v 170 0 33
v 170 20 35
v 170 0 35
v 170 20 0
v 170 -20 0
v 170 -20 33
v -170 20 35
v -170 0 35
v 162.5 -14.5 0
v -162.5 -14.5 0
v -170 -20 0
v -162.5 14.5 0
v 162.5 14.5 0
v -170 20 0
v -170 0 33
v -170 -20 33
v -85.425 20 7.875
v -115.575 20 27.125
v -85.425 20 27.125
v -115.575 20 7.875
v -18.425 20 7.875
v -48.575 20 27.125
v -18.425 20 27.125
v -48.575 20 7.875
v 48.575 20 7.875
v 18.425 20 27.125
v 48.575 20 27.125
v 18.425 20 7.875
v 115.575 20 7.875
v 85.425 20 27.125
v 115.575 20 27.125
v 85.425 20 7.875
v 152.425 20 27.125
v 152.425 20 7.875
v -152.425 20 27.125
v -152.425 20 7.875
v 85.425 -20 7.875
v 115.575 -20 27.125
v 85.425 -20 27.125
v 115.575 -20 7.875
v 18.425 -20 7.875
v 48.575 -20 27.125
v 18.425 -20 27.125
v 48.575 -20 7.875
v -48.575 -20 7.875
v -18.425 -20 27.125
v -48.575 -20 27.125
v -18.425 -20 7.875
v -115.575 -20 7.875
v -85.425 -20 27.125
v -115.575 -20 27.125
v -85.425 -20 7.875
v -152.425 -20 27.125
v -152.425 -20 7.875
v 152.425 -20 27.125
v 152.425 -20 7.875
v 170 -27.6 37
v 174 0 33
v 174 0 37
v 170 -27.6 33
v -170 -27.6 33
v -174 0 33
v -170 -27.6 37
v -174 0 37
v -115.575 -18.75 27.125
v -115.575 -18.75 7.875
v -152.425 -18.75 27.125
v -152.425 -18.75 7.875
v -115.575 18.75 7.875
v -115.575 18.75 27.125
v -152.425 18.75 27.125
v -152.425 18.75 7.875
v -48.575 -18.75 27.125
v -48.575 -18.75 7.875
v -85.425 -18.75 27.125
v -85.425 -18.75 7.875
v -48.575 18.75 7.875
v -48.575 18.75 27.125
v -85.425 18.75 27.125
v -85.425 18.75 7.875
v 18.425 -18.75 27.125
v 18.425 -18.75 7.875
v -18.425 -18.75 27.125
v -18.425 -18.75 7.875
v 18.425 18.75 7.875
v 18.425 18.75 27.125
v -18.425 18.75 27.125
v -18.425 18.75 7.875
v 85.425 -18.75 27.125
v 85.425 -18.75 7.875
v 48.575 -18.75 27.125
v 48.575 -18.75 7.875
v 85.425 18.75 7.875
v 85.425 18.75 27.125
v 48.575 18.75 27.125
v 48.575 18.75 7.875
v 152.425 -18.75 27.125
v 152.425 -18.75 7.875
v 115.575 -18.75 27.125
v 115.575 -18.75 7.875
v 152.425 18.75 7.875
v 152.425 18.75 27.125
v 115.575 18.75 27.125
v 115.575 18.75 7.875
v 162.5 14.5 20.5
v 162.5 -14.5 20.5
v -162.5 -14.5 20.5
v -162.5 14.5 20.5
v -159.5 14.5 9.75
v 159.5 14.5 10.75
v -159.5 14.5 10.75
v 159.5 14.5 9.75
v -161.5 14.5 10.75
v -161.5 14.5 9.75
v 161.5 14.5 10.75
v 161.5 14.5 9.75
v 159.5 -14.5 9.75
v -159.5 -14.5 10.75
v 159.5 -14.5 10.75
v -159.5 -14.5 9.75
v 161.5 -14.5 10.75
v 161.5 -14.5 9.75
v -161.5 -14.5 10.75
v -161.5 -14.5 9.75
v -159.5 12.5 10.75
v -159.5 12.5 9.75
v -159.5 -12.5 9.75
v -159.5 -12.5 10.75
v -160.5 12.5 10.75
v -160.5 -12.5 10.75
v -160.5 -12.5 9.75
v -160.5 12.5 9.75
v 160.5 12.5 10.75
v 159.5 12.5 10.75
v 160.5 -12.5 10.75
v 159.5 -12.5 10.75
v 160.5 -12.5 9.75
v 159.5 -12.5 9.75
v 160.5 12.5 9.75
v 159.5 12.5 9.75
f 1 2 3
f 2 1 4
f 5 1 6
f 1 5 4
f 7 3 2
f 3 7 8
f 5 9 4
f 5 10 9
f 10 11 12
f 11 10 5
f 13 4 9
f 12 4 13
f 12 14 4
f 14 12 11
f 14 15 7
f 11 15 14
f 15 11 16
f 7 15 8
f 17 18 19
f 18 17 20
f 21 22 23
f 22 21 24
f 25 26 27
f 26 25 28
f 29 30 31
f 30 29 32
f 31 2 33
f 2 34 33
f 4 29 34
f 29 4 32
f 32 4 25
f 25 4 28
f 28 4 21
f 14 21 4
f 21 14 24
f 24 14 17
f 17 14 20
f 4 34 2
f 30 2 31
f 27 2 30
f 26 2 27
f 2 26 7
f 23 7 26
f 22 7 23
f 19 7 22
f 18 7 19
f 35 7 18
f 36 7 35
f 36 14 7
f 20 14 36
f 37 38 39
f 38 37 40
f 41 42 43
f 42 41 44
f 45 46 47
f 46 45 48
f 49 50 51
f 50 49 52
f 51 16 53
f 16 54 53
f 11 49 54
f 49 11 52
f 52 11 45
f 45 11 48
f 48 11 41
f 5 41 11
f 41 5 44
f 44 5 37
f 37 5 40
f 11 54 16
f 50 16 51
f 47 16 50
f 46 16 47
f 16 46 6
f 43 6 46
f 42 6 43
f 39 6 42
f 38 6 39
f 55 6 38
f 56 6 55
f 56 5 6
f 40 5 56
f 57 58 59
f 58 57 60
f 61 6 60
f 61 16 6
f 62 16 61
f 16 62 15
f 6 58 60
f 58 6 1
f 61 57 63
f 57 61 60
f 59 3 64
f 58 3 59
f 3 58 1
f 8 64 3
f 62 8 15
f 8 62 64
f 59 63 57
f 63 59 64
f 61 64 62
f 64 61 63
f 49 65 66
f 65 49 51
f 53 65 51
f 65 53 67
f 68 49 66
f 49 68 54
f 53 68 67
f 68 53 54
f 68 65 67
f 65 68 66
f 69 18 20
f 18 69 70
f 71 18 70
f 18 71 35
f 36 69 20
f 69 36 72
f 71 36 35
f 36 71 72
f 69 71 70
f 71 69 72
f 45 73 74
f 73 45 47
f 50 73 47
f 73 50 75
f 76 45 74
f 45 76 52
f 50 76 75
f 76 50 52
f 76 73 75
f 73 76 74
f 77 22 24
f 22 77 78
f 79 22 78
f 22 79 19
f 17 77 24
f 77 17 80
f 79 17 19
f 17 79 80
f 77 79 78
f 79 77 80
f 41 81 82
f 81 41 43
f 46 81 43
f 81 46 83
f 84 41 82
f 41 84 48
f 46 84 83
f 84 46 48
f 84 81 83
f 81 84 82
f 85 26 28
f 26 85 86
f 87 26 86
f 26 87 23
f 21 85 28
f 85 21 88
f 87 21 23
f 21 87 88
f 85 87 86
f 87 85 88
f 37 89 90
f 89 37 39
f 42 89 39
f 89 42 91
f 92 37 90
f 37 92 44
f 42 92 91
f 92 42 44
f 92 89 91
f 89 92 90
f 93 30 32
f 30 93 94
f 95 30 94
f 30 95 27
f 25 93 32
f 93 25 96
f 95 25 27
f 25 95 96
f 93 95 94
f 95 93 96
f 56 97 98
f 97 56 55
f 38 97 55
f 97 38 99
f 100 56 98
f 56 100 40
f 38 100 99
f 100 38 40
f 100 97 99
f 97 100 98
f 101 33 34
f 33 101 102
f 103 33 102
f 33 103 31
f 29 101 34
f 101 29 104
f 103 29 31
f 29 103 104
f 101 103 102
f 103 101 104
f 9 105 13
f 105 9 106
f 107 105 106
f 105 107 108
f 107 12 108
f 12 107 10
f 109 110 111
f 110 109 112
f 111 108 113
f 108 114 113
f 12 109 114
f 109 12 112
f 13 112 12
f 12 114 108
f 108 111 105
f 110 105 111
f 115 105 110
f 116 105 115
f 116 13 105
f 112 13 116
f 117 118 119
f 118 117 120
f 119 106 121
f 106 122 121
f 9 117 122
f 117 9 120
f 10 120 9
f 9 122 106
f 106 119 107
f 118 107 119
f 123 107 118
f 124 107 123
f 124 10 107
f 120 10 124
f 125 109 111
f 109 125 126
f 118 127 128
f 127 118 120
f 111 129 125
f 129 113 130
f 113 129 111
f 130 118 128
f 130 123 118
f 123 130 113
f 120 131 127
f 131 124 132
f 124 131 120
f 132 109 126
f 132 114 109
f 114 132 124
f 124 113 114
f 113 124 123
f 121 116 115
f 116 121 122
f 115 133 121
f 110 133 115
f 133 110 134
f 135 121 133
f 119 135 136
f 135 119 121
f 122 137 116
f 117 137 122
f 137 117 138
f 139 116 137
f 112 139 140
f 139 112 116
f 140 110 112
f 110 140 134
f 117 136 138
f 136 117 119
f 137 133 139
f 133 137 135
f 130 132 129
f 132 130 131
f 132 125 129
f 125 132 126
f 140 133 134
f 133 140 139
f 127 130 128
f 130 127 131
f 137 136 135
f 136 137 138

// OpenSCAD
// sample-hutong-window-shell.scad
// IDB-6C CAD Export Demo Pack
// 胡同窗棂风格外壳示例（参数化）
// 说明：该文件演示如何围绕 ReadingCore-01 keepout 设计一个可定制外壳。
//       所有尺寸为示意值，可在外部通过 sample-config.json 覆盖关键参数。

// 默认参数（可在命令行用 -D 覆盖，例如 -D shell_length=300）
shell_length = 340;    // 外壳总长
shell_width  =  40;    // 外壳总宽
shell_height =  35;    // 外壳总高（含屋檐）
wall_thickness = 2.5;  // 外壳壁厚
window_count = 5;      // 窗棂格栅数量
cutout_ratio = 0.55;   // 格栅开口比例（0~1）

// ReadingCore-01 keepout 尺寸（需与 readingcore-01-keepout.scad 一致）
core_length = 320;
core_width  =  24;
core_height =  12;
diffuser_height = 4;
keepout_width  = core_width + 2 * 0.5;
keepout_height = core_height + diffuser_height + 0.5;
keepout_length = core_length + 2 * 0.5;

// 安全间隙：外壳内壁与 keepout 至少保留 2mm
clearance = 2;

module readingcore_keepout() {
    color("DarkOrange", 0.35)
        translate([0, 0, core_height/2 + diffuser_height/2])
            cube([keepout_length, keepout_width, keepout_height], center=true);
}

module diffuser_slot() {
    color("LightBlue", 0.3)
        translate([0, 0, core_height/2 + diffuser_height/2])
            cube([keepout_length + 4, keepout_width + 2, diffuser_height + 0.5], center=true);
}

module m3_mount_holes() {
    mount_hole_diameter = 3.2;
    mount_hole_spacing  = 300;
    for (x = [-mount_hole_spacing/2, mount_hole_spacing/2]) {
        translate([x, 0, core_height + diffuser_height + 2])
            color("Red", 0.6)
                cylinder(h = 10, d = mount_hole_diameter, $fn = 24, center = true);
    }
}

module cable_exit() {
    color("Yellow", 0.5)
        translate([core_length/2 + 8, 0, core_height/2])
            cylinder(h = 12, d = 8, $fn = 24, center = true);
}

module shell_hutong_window() {
    difference() {
        // 主体：长条盒 + 屋檐顶
        union() {
            // 主盒体
            translate([0, 0, shell_height/2])
                cube([shell_length, shell_width, shell_height], center=true);

            // 中式屋檐：顶部两侧小檐口
            translate([0, 0, shell_height])
                scale([1, 1.15, 1])
                    linear_extrude(height = 4, center = true)
                        polygon([
                            [-shell_length/2 - 4, 0],
                            [shell_length/2 + 4, 0],
                            [shell_length/2, -shell_width/2 - 4],
                            [-shell_length/2, -shell_width/2 - 4]
                        ]);
        }

        // 内部挖空：灯腔（避让 ReadingCore-01 keepout）
        translate([0, 0, keepout_height/2 + clearance])
            cube([keepout_length + 2*clearance, keepout_width + 2*clearance, keepout_height + 2*clearance], center=true);

        // 底部开口：让光射出
        translate([0, 0, -0.5])
            cube([keepout_length, keepout_width, wall_thickness + 1], center=true);

        // 窗棂格栅：在两侧面挖出规则矩形
        for (i = [0 : window_count - 1]) {
            x_pos = -shell_length/2 + wall_thickness + (i + 0.5) * ((shell_length - 2*wall_thickness) / window_count);
            cut_w = ((shell_length - 2*wall_thickness) / window_count) * cutout_ratio;
            cut_h = shell_height * 0.55;

            // 左侧面窗格
            translate([x_pos, -shell_width/2 - 0.1, shell_height/2])
                cube([cut_w, wall_thickness + 0.2, cut_h], center=true);

            // 右侧面窗格
            translate([x_pos, shell_width/2 + 0.1, shell_height/2])
                cube([cut_w, wall_thickness + 0.2, cut_h], center=true);
        }
    }

    // 装配定位筋（示意，用于外壳与散热铝槽对齐）
    color("Silver", 0.6) {
        for (x = [-keepout_length/2, keepout_length/2]) {
            translate([x, 0, keepout_height/2 + clearance])
                cube([2, keepout_width + 2*clearance, 1], center=true);
        }
    }
}

// 最终调用：渲染外壳，并叠加 keepout 作为参考
difference() {
    shell_hutong_window();
    readingcore_keepout();
}

// 使用示例：
//   openscad -D shell_length=300 -D window_count=4 -o sample-hutong-window-shell.stl sample-hutong-window-shell.scad
